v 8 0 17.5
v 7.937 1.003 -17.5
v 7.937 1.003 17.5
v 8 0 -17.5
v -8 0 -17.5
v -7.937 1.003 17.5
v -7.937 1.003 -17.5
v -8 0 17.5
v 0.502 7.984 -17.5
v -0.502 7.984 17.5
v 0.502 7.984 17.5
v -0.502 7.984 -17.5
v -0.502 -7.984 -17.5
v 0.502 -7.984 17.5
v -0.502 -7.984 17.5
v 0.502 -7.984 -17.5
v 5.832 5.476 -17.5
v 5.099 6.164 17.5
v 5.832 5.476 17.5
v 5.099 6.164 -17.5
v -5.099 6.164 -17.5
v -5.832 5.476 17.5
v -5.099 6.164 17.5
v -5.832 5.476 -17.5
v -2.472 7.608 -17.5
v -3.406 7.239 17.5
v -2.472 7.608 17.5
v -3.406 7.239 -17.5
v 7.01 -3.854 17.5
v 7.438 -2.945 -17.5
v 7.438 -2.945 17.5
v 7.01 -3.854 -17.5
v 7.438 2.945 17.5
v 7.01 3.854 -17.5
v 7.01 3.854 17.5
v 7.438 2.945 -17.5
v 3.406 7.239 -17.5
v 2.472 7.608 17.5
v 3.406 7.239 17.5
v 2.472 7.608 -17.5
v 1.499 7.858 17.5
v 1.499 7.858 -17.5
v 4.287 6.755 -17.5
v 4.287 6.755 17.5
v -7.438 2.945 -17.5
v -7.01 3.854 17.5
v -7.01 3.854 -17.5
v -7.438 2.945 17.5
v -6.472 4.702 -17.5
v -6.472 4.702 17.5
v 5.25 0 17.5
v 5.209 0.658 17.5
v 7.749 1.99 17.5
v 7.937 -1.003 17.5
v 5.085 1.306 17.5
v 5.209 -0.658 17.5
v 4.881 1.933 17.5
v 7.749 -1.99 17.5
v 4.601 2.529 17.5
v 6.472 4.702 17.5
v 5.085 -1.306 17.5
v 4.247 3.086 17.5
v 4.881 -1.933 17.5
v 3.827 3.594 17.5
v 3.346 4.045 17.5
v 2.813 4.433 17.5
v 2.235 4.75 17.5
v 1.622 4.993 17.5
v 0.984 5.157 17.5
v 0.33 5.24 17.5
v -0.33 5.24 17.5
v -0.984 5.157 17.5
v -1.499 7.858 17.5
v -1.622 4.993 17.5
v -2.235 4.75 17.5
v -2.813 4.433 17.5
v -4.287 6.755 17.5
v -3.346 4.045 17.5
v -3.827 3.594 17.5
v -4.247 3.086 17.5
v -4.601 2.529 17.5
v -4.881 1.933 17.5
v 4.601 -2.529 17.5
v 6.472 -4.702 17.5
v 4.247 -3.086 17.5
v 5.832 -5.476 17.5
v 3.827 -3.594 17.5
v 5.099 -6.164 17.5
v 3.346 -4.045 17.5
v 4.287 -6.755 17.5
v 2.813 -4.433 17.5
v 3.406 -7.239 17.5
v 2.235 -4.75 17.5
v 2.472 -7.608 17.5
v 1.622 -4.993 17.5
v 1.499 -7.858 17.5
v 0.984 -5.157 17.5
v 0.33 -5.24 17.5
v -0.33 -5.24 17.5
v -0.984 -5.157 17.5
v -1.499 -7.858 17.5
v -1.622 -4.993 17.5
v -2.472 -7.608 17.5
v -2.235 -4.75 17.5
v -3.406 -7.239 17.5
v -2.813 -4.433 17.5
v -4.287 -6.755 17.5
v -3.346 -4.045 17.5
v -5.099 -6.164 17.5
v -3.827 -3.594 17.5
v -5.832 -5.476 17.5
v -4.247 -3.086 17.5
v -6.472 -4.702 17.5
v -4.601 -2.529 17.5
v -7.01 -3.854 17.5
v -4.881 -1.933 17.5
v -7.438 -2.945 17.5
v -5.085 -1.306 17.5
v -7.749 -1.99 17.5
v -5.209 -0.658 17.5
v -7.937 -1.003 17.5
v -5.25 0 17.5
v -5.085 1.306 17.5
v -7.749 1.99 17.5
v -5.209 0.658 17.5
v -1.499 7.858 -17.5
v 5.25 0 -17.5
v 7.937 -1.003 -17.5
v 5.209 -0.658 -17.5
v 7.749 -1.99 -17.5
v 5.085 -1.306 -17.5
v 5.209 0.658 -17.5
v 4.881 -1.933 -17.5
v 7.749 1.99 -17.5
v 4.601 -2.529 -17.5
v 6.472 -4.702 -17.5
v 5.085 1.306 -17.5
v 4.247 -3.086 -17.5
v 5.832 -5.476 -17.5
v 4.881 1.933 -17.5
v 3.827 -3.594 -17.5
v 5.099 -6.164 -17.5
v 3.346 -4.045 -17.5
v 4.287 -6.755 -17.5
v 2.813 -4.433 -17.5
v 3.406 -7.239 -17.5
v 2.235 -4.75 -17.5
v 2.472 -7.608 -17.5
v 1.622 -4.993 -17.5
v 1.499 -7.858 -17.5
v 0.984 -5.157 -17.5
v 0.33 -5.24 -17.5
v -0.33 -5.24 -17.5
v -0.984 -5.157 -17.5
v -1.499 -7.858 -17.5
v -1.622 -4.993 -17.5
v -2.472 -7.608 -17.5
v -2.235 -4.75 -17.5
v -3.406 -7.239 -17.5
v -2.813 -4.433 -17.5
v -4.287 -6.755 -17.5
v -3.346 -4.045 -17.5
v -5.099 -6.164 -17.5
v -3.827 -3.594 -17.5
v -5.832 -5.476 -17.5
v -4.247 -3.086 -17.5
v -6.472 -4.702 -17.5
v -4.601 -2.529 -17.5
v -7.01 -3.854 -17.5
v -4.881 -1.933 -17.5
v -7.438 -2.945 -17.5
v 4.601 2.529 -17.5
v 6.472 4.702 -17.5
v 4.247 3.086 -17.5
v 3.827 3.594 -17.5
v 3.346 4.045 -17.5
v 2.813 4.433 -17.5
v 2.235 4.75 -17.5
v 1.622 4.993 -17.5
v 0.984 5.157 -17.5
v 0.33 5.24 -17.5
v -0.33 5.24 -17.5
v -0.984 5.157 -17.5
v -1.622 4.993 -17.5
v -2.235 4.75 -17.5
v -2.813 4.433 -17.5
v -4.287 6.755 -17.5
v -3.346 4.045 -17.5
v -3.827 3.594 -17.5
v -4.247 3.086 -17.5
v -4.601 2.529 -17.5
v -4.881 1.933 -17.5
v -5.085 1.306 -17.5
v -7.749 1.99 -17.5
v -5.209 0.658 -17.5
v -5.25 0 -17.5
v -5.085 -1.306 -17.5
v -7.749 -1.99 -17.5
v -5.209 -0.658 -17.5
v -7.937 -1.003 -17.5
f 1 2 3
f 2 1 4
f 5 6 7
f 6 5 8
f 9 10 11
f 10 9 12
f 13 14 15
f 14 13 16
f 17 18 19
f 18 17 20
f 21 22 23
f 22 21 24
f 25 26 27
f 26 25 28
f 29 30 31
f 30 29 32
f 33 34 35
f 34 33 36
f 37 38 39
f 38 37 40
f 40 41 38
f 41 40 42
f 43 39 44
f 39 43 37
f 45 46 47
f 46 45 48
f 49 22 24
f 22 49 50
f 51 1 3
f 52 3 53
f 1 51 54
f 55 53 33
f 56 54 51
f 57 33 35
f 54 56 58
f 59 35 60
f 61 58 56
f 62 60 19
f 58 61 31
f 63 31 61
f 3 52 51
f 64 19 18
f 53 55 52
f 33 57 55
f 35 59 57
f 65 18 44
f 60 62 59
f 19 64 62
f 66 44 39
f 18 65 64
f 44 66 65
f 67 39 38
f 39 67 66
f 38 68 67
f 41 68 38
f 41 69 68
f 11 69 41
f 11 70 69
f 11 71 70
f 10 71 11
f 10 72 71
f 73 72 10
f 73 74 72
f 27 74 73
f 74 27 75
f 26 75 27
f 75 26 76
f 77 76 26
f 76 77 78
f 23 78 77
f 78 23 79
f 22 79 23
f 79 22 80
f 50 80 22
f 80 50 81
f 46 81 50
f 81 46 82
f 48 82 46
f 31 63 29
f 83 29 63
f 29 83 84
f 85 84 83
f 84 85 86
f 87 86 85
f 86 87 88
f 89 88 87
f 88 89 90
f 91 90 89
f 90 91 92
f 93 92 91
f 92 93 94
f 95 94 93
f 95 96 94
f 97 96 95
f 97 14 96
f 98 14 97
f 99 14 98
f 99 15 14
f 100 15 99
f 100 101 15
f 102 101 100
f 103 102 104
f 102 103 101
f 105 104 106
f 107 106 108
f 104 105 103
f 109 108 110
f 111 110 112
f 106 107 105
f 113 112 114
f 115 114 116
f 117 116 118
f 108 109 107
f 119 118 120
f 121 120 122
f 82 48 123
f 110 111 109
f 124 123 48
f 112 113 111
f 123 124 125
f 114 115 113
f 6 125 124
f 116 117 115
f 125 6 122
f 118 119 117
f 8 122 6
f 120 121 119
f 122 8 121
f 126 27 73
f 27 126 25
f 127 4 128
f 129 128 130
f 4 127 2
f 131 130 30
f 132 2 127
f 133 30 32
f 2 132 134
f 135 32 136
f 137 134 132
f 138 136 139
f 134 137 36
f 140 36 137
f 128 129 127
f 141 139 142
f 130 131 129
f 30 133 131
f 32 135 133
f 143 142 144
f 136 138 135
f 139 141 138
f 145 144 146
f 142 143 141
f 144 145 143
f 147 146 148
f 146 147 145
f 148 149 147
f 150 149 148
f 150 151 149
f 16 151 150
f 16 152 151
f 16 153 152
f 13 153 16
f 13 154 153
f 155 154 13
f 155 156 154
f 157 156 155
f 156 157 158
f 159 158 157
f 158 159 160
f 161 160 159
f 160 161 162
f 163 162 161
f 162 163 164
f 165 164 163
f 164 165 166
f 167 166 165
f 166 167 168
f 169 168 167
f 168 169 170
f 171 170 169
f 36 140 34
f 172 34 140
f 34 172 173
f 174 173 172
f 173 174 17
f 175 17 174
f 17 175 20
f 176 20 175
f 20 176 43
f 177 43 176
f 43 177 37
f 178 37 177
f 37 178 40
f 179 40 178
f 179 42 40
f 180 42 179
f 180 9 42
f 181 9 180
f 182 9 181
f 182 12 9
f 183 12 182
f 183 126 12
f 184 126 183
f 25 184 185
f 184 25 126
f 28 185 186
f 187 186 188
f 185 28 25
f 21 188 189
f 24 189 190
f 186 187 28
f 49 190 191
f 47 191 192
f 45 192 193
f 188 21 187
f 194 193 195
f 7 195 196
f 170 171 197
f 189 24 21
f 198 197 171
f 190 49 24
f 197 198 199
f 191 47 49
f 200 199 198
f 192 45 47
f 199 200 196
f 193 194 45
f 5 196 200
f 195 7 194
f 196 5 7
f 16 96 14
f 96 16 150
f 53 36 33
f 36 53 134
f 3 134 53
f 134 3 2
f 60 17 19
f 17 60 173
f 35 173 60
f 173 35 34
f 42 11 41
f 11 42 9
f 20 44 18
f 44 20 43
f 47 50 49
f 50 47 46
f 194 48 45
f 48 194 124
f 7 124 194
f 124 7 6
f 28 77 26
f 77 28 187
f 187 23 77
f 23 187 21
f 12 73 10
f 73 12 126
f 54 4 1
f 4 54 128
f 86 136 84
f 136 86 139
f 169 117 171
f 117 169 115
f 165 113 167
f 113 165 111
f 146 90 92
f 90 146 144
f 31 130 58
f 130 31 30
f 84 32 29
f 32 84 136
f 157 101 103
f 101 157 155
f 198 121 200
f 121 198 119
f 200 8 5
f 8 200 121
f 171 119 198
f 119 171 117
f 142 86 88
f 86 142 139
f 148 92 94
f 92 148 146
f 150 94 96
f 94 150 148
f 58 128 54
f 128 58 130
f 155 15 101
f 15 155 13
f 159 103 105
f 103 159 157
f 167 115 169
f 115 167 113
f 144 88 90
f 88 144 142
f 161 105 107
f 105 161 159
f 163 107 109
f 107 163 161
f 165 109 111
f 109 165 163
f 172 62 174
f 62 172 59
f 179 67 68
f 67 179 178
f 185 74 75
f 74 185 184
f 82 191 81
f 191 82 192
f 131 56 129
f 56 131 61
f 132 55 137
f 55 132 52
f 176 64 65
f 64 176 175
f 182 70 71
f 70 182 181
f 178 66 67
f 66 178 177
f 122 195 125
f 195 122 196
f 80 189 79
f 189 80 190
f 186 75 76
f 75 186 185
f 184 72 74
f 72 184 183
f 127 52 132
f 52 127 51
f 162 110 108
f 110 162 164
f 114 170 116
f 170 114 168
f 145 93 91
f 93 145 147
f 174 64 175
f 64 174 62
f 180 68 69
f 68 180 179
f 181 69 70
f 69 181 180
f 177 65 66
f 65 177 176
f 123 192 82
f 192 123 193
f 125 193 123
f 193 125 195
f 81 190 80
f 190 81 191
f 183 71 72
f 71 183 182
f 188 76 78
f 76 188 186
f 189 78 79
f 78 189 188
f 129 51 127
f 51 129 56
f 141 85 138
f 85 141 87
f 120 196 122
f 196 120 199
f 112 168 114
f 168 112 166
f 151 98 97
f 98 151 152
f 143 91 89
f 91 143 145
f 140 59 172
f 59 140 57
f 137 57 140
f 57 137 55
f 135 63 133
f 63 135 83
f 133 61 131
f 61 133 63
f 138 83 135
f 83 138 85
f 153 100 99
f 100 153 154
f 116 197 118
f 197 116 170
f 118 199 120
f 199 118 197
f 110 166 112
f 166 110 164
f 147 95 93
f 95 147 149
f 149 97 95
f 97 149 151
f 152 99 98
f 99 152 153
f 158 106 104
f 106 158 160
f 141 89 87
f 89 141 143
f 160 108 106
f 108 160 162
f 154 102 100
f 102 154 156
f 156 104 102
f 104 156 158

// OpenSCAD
$fn = 50;


difference() {
	union() {
		translate(v = [0, 0, -17.5000000000]) {
			cylinder(h = 35, r = 8.0000000000);
		}
	}
	union() {
		translate(v = [0, 0, -100.0000000000]) {
			cylinder(h = 200, r = 5.2500000000);
		}
	}
}
